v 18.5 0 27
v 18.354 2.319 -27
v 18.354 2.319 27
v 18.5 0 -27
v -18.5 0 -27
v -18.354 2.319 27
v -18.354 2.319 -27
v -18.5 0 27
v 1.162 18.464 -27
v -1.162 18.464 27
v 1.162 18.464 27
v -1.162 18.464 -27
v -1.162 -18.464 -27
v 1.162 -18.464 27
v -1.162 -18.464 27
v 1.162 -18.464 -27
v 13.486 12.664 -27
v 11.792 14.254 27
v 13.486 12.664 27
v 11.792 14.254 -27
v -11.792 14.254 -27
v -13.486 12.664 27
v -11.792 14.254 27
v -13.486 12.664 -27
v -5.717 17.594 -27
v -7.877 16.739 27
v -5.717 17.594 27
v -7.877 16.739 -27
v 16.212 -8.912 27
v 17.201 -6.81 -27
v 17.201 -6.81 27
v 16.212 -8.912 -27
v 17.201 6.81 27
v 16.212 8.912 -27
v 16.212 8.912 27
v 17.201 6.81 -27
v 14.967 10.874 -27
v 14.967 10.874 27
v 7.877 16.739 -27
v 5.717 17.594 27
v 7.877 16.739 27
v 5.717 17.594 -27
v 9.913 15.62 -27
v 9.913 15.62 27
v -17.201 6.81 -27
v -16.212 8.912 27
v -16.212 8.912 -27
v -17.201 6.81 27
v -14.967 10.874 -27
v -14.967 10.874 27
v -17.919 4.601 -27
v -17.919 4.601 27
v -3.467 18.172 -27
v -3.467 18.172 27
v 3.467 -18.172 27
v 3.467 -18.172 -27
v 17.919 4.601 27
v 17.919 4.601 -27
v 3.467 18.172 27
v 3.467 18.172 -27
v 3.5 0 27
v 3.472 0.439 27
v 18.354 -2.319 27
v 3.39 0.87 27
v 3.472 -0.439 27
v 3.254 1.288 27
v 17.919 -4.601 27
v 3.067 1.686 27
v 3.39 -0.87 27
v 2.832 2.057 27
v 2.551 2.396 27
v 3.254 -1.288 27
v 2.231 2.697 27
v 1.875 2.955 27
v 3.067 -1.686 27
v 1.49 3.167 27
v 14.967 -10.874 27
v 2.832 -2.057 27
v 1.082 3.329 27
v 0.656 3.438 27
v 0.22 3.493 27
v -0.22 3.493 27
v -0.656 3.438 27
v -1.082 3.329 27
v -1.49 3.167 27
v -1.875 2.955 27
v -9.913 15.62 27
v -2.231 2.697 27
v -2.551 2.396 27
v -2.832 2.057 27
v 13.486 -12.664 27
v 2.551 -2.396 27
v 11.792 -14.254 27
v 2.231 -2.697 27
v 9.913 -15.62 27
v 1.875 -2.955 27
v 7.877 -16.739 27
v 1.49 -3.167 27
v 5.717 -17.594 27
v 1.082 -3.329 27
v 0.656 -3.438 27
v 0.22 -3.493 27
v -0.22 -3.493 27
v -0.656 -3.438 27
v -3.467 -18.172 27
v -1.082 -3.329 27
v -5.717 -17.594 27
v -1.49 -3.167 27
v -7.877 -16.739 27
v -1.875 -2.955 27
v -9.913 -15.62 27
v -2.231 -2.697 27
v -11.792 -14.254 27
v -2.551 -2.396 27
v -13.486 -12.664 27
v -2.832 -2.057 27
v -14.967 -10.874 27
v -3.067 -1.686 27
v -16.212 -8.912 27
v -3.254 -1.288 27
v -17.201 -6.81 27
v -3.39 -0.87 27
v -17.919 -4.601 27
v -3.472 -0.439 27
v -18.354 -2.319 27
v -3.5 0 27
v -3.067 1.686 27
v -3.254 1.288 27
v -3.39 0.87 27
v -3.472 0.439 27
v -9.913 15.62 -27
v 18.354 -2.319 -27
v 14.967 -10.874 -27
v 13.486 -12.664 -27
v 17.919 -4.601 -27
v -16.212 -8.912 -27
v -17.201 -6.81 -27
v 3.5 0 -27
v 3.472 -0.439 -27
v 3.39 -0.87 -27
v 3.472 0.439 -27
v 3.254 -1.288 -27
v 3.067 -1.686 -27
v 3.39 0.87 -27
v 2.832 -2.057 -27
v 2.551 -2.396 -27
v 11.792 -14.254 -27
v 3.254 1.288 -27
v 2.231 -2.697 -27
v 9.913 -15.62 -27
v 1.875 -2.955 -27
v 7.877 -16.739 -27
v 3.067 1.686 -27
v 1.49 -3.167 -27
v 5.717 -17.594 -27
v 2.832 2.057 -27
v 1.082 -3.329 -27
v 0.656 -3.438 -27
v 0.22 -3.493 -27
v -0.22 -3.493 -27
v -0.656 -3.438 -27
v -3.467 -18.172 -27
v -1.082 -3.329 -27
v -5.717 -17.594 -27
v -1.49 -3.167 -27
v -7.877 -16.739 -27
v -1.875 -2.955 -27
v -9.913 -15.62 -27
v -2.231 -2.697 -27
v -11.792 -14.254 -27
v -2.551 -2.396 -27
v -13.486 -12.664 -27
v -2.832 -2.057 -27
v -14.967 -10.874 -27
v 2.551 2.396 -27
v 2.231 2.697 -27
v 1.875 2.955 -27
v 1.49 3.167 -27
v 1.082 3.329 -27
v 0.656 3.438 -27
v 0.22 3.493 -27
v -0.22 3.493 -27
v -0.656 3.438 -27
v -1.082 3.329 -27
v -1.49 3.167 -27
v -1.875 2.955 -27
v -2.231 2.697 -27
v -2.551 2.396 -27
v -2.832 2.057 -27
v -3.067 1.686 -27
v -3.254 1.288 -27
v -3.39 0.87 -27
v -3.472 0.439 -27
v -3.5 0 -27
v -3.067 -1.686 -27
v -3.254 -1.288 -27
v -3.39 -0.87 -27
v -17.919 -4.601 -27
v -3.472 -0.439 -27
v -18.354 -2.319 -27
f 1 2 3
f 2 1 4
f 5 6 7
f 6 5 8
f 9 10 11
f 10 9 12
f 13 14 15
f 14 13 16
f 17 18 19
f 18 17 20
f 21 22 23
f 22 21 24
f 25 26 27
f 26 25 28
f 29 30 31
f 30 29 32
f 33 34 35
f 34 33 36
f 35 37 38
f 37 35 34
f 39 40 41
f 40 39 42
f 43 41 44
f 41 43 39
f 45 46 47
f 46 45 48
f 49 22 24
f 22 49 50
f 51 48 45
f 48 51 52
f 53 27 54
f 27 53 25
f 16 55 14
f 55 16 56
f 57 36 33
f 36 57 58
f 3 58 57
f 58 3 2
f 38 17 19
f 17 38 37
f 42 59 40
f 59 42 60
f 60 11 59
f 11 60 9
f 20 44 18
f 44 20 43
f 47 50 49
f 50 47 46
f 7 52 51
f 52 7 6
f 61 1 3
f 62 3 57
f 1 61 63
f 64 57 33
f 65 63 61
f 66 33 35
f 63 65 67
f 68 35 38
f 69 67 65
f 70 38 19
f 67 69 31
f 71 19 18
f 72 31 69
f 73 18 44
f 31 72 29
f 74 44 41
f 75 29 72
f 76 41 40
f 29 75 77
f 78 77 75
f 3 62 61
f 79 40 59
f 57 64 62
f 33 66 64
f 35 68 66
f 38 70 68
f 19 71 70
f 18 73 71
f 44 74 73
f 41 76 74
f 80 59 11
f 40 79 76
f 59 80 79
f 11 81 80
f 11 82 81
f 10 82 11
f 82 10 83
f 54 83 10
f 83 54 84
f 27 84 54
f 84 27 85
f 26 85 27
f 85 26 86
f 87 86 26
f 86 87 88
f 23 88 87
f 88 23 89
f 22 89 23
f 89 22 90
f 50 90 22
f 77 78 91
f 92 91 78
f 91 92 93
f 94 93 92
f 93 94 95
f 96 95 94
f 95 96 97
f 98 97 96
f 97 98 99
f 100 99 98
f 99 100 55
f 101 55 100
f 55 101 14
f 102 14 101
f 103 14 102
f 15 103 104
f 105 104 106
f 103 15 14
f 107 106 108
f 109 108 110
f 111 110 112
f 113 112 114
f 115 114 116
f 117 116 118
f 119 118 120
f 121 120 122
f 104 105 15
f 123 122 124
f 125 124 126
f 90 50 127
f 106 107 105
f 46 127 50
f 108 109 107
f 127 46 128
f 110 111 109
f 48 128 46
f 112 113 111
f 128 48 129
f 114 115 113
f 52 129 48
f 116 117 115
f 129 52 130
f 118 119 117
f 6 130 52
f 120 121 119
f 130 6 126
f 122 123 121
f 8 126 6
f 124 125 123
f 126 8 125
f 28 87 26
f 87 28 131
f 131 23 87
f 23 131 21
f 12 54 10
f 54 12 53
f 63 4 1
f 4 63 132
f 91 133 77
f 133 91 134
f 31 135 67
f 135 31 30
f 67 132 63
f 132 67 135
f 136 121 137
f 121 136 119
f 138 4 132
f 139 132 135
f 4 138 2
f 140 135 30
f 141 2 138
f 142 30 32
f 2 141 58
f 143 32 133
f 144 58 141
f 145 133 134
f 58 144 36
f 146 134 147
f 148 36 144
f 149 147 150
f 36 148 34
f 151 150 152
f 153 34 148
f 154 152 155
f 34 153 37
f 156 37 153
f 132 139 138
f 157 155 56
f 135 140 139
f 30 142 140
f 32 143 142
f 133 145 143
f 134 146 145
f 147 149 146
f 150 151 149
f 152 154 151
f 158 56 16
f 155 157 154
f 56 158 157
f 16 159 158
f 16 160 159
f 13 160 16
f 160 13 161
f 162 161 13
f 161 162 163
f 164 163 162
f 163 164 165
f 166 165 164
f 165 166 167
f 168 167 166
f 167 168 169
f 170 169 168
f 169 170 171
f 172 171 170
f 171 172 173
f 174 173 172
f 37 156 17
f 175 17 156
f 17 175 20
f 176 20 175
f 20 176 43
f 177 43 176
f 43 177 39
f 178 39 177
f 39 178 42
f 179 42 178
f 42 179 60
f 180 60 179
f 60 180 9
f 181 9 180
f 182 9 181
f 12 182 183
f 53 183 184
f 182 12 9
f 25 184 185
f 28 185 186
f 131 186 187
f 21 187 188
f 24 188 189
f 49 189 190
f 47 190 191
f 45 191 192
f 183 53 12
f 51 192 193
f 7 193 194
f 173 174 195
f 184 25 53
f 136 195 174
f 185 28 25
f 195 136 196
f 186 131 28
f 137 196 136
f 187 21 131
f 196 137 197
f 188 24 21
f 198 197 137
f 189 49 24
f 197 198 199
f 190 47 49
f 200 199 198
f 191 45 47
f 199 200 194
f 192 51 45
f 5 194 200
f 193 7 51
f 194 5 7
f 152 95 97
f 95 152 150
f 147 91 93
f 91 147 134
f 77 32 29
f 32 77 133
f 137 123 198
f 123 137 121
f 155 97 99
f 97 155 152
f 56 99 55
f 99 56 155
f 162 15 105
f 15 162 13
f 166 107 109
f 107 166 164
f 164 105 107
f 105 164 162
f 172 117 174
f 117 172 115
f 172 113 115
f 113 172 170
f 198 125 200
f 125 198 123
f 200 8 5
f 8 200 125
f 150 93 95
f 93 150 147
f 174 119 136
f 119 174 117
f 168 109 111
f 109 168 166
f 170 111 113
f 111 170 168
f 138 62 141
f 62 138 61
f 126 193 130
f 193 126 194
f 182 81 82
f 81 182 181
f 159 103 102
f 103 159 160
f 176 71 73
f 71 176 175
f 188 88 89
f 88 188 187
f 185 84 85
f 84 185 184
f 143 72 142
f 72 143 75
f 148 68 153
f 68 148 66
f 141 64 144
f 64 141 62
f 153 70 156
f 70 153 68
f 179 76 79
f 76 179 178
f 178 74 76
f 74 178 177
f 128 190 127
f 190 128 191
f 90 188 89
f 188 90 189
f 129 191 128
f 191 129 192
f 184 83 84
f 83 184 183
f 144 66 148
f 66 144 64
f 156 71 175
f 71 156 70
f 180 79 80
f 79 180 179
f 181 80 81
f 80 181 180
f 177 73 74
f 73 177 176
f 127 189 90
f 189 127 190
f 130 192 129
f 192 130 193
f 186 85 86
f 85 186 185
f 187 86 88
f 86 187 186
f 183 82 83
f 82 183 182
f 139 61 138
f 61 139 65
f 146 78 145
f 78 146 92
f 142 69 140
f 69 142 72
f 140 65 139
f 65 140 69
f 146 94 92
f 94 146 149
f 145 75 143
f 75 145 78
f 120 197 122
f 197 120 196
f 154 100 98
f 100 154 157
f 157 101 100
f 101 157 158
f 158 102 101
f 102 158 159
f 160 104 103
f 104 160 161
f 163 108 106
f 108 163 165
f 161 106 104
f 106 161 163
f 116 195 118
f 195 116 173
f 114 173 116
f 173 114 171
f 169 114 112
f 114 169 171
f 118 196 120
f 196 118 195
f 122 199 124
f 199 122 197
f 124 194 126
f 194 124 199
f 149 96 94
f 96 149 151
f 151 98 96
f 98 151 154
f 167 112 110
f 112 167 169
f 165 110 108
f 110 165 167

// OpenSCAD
$fn = 50;


difference() {
	union() {
		translate(v = [0, 0, -27.0000000000]) {
			cylinder(h = 54, r = 18.5000000000);
		}
	}
	union() {
		translate(v = [0, 0, -100.0000000000]) {
			cylinder(h = 200, r = 3.5000000000);
		}
	}
}
